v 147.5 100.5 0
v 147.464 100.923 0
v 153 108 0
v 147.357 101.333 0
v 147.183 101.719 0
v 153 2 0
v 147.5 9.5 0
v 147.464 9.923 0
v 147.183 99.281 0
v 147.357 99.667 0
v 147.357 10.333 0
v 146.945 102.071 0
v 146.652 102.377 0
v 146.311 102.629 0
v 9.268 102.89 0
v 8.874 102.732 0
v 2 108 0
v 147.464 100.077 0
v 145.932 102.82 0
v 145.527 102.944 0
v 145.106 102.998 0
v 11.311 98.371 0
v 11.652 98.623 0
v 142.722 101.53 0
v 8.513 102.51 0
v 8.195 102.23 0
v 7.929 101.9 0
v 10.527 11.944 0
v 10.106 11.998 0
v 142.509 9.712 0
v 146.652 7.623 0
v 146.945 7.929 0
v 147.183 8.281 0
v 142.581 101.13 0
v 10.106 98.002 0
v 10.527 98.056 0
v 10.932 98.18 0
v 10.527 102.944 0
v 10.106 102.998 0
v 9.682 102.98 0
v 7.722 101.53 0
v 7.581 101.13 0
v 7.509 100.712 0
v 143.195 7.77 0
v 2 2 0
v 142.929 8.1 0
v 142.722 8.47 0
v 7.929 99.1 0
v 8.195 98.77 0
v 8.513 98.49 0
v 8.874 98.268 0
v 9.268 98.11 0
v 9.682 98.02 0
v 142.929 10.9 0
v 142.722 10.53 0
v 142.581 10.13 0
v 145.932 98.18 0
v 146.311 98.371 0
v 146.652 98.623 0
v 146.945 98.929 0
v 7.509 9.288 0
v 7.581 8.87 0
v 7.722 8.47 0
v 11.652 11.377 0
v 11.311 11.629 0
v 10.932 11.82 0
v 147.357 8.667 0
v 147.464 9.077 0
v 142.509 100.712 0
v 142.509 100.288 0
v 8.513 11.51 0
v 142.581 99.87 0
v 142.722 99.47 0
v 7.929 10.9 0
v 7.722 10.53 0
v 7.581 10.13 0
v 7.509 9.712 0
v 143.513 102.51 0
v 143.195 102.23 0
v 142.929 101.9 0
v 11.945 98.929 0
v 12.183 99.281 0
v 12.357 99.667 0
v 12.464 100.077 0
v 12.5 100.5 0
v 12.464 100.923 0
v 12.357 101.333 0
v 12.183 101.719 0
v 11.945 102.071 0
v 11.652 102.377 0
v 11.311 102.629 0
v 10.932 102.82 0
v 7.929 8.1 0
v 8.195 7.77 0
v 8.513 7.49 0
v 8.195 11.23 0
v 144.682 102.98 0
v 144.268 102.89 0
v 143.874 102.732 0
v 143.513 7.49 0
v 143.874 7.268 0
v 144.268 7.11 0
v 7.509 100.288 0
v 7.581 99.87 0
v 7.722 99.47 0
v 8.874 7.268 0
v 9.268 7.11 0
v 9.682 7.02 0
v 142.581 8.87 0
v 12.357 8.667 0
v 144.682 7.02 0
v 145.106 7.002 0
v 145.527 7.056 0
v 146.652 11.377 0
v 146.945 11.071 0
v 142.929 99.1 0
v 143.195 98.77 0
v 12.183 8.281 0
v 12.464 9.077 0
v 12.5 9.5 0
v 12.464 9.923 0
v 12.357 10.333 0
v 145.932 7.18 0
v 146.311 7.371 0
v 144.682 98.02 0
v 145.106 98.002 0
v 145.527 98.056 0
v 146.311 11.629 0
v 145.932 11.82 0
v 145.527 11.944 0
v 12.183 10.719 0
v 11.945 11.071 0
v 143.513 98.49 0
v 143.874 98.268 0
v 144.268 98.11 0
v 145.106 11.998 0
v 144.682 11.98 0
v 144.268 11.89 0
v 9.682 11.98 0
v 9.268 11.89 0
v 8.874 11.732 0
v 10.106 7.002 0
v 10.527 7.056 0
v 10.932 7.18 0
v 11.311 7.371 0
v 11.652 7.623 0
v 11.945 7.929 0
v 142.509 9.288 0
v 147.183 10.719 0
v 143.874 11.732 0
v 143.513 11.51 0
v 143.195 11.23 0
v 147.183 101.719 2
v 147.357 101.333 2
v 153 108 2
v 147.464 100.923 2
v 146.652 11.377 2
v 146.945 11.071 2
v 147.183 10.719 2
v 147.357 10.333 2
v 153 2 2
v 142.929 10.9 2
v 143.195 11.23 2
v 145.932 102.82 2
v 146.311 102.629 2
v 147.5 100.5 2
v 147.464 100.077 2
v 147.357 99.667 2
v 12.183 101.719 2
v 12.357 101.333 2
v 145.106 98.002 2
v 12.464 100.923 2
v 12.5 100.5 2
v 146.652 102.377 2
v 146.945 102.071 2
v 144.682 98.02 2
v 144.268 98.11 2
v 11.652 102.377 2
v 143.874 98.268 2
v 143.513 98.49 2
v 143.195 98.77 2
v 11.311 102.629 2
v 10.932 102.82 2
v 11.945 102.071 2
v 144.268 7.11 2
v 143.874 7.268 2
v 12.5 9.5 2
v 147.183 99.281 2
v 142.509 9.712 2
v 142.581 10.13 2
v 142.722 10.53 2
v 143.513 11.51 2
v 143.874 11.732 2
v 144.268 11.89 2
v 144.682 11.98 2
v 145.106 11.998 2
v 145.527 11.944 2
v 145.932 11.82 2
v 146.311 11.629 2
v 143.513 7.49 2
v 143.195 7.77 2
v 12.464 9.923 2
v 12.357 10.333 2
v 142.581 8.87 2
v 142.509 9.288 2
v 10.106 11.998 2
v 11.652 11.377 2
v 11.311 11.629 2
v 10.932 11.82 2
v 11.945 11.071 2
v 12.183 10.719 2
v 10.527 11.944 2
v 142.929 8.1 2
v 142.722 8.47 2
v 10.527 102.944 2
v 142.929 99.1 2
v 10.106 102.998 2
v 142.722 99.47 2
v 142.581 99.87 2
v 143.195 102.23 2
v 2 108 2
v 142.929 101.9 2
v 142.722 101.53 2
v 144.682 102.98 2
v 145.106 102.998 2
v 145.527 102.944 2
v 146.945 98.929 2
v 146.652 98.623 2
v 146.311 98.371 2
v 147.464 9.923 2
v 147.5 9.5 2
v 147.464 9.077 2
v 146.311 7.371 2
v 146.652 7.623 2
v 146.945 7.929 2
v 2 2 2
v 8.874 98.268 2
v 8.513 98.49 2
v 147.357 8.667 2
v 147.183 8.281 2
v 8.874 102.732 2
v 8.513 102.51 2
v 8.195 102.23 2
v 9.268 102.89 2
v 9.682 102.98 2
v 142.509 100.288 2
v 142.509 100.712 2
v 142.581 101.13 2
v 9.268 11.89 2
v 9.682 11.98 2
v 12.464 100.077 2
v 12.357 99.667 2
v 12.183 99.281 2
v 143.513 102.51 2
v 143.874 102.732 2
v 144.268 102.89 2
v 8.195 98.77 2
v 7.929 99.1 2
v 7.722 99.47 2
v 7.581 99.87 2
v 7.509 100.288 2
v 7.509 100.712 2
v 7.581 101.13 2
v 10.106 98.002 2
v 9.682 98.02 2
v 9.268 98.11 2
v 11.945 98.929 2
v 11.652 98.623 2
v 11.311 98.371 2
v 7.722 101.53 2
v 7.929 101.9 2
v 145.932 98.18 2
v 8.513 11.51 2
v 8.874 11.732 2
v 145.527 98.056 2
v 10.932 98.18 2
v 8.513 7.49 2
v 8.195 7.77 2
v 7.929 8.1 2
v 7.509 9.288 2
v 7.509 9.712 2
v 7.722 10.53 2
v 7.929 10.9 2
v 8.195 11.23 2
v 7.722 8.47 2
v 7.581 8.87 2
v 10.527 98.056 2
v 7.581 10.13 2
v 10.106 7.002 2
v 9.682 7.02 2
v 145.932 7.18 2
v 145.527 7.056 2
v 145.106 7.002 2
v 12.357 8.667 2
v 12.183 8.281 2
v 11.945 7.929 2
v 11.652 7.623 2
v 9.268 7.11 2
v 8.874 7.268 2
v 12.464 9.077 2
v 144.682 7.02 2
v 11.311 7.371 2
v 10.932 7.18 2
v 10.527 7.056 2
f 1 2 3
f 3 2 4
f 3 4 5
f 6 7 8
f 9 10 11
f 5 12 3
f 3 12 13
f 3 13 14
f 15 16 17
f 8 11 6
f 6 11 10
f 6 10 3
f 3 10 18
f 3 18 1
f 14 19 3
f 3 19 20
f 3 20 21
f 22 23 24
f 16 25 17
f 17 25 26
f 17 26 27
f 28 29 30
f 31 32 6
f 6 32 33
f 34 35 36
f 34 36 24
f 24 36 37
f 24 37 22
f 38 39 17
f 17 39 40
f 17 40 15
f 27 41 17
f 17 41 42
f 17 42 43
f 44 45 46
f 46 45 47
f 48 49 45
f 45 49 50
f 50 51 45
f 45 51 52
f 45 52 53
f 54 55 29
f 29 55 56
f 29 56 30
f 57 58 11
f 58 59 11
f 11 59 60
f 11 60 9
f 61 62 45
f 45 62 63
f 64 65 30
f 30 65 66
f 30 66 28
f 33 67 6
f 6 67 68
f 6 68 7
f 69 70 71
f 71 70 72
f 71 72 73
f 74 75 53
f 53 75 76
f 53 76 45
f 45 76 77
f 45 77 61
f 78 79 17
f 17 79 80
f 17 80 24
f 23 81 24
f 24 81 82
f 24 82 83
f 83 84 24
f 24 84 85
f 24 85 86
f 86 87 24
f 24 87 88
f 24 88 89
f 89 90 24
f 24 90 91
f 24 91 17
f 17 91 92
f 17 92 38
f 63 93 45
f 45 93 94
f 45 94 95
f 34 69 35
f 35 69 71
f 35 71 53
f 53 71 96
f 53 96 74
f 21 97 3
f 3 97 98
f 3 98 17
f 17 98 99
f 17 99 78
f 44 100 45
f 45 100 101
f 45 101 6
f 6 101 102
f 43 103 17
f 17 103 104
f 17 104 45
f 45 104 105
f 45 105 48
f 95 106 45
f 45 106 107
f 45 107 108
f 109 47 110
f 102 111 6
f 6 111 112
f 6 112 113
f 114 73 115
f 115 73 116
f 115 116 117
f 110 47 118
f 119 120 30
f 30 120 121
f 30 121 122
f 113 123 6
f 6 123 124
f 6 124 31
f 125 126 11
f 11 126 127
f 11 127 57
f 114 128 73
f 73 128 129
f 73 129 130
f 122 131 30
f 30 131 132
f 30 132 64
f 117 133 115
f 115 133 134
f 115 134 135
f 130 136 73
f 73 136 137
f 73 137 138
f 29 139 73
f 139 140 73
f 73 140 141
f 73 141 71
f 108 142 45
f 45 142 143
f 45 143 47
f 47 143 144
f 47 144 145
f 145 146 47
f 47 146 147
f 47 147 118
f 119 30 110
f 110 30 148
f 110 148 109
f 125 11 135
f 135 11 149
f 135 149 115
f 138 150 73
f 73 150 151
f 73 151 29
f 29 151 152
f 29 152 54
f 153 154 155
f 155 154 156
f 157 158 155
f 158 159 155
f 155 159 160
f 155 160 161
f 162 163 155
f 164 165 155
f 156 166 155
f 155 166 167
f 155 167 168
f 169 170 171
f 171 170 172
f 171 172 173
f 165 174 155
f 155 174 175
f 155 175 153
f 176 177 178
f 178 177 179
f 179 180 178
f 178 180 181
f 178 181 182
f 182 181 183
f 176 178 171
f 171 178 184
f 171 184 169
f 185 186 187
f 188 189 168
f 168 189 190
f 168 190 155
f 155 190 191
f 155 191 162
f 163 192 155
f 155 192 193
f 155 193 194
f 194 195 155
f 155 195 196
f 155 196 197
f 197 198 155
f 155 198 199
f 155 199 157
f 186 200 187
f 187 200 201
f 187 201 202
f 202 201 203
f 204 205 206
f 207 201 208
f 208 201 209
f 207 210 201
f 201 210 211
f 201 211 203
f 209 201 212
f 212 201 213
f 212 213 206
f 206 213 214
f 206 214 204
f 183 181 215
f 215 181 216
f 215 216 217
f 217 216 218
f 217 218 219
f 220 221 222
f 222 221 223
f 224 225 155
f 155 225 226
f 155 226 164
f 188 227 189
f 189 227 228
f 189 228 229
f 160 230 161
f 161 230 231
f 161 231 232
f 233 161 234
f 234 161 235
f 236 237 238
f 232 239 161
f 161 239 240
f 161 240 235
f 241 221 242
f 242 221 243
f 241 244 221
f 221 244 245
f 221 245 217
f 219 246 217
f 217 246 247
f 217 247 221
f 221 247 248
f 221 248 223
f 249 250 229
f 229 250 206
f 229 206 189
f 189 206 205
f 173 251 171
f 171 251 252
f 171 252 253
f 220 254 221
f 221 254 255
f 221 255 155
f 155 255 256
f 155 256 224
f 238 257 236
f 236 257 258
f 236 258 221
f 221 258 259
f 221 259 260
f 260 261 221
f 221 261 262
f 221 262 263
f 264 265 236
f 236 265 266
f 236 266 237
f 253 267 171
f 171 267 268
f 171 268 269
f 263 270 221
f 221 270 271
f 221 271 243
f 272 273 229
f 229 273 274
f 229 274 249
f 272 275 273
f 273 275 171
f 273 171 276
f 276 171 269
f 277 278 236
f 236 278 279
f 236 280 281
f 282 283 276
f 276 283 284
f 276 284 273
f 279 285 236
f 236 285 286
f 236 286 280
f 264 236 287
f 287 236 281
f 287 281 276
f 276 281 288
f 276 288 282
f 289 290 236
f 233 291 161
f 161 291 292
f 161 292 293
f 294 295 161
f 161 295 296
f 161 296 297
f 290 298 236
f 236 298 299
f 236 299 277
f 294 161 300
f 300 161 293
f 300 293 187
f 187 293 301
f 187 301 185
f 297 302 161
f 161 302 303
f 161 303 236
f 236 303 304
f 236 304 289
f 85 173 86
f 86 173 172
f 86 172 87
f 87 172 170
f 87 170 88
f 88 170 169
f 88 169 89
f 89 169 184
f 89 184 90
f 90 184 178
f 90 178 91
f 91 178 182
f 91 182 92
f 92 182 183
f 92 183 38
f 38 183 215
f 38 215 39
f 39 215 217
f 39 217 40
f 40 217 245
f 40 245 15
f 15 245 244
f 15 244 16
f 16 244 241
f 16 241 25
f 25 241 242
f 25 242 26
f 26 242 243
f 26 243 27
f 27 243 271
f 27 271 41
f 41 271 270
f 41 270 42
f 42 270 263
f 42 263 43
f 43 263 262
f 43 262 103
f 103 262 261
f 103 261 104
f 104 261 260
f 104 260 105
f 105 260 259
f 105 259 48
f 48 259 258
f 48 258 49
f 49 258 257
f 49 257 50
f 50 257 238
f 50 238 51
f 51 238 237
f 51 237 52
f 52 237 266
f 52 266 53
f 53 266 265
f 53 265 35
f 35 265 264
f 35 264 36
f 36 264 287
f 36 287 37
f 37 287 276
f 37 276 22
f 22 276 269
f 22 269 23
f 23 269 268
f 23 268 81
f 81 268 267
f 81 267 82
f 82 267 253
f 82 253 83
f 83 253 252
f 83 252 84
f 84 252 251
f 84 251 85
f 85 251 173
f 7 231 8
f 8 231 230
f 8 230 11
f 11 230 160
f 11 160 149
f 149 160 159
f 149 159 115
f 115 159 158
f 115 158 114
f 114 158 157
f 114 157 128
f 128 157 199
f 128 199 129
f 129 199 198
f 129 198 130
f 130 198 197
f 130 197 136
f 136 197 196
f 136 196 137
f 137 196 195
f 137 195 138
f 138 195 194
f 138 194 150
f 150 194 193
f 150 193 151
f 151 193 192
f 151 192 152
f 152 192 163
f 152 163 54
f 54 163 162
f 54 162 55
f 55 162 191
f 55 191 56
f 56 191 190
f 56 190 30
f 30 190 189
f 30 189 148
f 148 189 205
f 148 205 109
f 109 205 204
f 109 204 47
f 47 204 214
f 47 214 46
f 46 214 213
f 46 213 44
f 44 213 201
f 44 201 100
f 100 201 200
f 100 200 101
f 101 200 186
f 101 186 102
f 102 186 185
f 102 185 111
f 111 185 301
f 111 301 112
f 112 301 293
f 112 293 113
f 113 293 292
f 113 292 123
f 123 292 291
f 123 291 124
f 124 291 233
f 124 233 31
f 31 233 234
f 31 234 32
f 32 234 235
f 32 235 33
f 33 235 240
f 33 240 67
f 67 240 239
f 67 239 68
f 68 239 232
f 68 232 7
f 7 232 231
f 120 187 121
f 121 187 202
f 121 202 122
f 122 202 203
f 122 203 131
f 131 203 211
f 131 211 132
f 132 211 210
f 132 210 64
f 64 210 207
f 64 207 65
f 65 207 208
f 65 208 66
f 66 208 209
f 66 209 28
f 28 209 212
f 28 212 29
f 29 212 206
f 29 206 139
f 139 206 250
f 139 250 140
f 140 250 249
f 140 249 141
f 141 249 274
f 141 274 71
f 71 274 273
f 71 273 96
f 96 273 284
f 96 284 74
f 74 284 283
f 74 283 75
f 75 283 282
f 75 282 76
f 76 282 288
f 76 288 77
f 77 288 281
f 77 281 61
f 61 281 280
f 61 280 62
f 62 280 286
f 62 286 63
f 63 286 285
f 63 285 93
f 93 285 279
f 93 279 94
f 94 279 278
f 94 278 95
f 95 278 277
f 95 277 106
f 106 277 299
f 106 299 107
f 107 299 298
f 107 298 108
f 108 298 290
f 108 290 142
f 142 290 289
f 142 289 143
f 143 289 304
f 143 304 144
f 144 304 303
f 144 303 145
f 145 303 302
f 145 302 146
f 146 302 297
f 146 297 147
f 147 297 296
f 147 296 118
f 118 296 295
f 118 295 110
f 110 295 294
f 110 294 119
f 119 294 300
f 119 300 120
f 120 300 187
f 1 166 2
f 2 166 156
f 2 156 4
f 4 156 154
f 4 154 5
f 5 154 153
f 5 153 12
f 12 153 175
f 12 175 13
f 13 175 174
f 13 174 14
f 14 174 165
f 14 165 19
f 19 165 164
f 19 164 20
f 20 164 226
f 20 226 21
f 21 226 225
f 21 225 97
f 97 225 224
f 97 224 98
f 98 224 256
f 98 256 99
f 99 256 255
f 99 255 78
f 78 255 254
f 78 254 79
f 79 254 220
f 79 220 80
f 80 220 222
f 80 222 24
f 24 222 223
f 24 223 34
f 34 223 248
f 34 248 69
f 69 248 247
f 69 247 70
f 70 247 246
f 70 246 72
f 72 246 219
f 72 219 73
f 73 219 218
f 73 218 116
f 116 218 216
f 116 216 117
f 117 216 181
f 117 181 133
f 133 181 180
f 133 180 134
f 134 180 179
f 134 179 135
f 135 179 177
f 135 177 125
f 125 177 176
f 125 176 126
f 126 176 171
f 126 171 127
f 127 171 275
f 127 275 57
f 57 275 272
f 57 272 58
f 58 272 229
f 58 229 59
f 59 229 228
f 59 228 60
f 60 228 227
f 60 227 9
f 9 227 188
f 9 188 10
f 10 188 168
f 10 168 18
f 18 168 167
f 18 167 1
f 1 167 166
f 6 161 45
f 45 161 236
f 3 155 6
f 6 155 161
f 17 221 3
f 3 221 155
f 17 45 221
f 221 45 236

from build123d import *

# Parameters (mm, degrees)
SKETCH1_W           = 155
SKETCH1_H           = 110
BOSS_EXTRUDE1_DEPTH = 80
SKETCH2_W           = 151
SKETCH2_H           = 106
CUT_EXTRUDE1_DEPTH  = 78
SKETCH3_R           = 2.5
CUT_EXTRUDE2_DEPTH  = 2
SKETCH7_R           = 1.6
CUT_EXTRUDE7_DEPTH  = 2
SKETCH4_W           = 27.5
SKETCH4_H           = 46.8
CUT_EXTRUDE8_DEPTH  = 2
SKETCH8_W           = 4
SKETCH8_H           = 53
CUT_EXTRUDE9_DEPTH  = 2
SKETCH9_W           = 14
SKETCH9_H           = 14
CUT_EXTRUDE10_DEPTH = 2
SKETCH10_W          = 25.2
SKETCH10_H          = 71.2
SKETCH10_R          = 1.25
CUT_EXTRUDE12_DEPTH = 2
SKETCH11_R          = 2.5
SKETCH11_R_2        = 4.5
CUT_EXTRUDE13_DEPTH = 2
SKETCH12_W          = 151
SKETCH12_H          = 2
CUT_EXTRUDE14_DEPTH = 80


with BuildPart() as part:
    # Sketch1 → Boss-Extrude1 (new body)
    with BuildSketch(Plane.XY):
        with Locations((77.5, 55)):
            Rectangle(SKETCH1_W, SKETCH1_H)
    extrude(amount=BOSS_EXTRUDE1_DEPTH)

    # Sketch2 → Cut-Extrude1 (cut)
    with BuildSketch(Plane.XY.offset(80)):
        with Locations((77.5, 55)):
            Rectangle(SKETCH2_W, SKETCH2_H)
    extrude(amount=-CUT_EXTRUDE1_DEPTH, mode=Mode.SUBTRACT)

    # Sketch3 → Cut-Extrude2 (cut)
    with BuildSketch(Plane.XY.offset(2)):
        with Locations((145, 100.5)):
            Circle(SKETCH3_R)
        with Locations((145, 9.5)):
            Circle(SKETCH3_R)
        with Locations((10, 9.5)):
            Circle(SKETCH3_R)
        with Locations((10, 100.5)):
            Circle(SKETCH3_R)
    extrude(amount=-CUT_EXTRUDE2_DEPTH, mode=Mode.SUBTRACT)

    # Sketch7 → Cut-Extrude7 (cut)
    with BuildSketch(Plane(origin=(0, 110, 0), x_dir=(1, 0, 0), z_dir=(0, 1, 0))):
        with Locations((44.48, -20.14450396)):
            Circle(SKETCH7_R)
        with Locations((95.28, -17.14)):
            Circle(SKETCH7_R)
        with Locations((95.28, -62.86)):
            Circle(SKETCH7_R)
        with Locations((44.48, -47.62)):
            Circle(SKETCH7_R)
    extrude(amount=-CUT_EXTRUDE7_DEPTH, mode=Mode.SUBTRACT)

    # Sketch4 → Cut-Extrude8 (cut)
    with BuildSketch(Plane(origin=(155, 0, 0), x_dir=(0, 0, -1), z_dir=(1, 0, 0))):
        with Locations((-40, 82.5)):
            Rectangle(SKETCH4_W, SKETCH4_H)
    extrude(amount=-CUT_EXTRUDE8_DEPTH, mode=Mode.SUBTRACT)

    # Sketch8 → Cut-Extrude9 (cut)
    with BuildSketch(Plane(origin=(155, 0, 0), x_dir=(0, 0, -1), z_dir=(1, 0, 0))):
        with Locations((-68, 28.5)):
            Rectangle(SKETCH8_W, SKETCH8_H)
        with Locations((-76, 28.5)):
            Rectangle(SKETCH8_W, SKETCH8_H)
        with Locations((-60, 28.5)):
            Rectangle(SKETCH8_W, SKETCH8_H)
        with Locations((-52, 28.5)):
            Rectangle(SKETCH8_W, SKETCH8_H)
        with Locations((-44, 28.5)):
            Rectangle(SKETCH8_W, SKETCH8_H)
        with Locations((-36, 28.5)):
            Rectangle(SKETCH8_W, SKETCH8_H)
        with Locations((-28, 28.5)):
            Rectangle(SKETCH8_W, SKETCH8_H)
        with Locations((-20, 28.5)):
            Rectangle(SKETCH8_W, SKETCH8_H)
        with Locations((-12, 28.5)):
            Rectangle(SKETCH8_W, SKETCH8_H)
        with Locations((-4, 28.5)):
            Rectangle(SKETCH8_W, SKETCH8_H)
    extrude(amount=-CUT_EXTRUDE9_DEPTH, mode=Mode.SUBTRACT)

    # Sketch9 → Cut-Extrude10 (cut)
    with BuildSketch(Plane(origin=(0, 110, 0), x_dir=(1, 0, 0), z_dir=(0, 1, 0))):
        with Locations((120, -19)):
            Rectangle(SKETCH9_W, SKETCH9_H)
    extrude(amount=-CUT_EXTRUDE10_DEPTH, mode=Mode.SUBTRACT)

    # Sketch10 → Cut-Extrude12 (cut)
    with BuildSketch(Plane.ZY):
        with Locations((58, 55)):
            Rectangle(SKETCH10_W, SKETCH10_H)
        with Locations((42.5, 92.5)):
            Circle(SKETCH10_R)
        with Locations((73.5, 92.5)):
            Circle(SKETCH10_R)
        with Locations((42.5, 17.5)):
            Circle(SKETCH10_R)
        with Locations((73.5, 17.5)):
            Circle(SKETCH10_R)
    extrude(amount=-CUT_EXTRUDE12_DEPTH, mode=Mode.SUBTRACT)

    # Sketch11 → Cut-Extrude13 (cut)
    with BuildSketch(Plane.ZY):
        with Locations((20, 55)):
            Circle(SKETCH11_R)
        with Locations((20, 40)):
            Circle(SKETCH11_R)
        with Locations((20, 25)):
            Circle(SKETCH11_R)
        with Locations((20, 82.5)):
            Circle(SKETCH11_R_2)
    extrude(amount=-CUT_EXTRUDE13_DEPTH, mode=Mode.SUBTRACT)

    # Sketch12 → Cut-Extrude14 (cut)
    with BuildSketch(Plane.XY.offset(80)):
        Polygon((0, 110), (0, 108), (2, 108), (153, 108), (155, 108), (155, 110), align=None)
        Polygon((2, 108), (0, 108), (0, 0), (2, 0), (2, 2), align=None)
        Polygon((155, 108), (153, 108), (153, 2), (153, 0), (155, 0), align=None)
        with Locations((77.5, 1)):
            Rectangle(SKETCH12_W, SKETCH12_H)
    extrude(amount=-CUT_EXTRUDE14_DEPTH, mode=Mode.SUBTRACT)


solid = part.part
